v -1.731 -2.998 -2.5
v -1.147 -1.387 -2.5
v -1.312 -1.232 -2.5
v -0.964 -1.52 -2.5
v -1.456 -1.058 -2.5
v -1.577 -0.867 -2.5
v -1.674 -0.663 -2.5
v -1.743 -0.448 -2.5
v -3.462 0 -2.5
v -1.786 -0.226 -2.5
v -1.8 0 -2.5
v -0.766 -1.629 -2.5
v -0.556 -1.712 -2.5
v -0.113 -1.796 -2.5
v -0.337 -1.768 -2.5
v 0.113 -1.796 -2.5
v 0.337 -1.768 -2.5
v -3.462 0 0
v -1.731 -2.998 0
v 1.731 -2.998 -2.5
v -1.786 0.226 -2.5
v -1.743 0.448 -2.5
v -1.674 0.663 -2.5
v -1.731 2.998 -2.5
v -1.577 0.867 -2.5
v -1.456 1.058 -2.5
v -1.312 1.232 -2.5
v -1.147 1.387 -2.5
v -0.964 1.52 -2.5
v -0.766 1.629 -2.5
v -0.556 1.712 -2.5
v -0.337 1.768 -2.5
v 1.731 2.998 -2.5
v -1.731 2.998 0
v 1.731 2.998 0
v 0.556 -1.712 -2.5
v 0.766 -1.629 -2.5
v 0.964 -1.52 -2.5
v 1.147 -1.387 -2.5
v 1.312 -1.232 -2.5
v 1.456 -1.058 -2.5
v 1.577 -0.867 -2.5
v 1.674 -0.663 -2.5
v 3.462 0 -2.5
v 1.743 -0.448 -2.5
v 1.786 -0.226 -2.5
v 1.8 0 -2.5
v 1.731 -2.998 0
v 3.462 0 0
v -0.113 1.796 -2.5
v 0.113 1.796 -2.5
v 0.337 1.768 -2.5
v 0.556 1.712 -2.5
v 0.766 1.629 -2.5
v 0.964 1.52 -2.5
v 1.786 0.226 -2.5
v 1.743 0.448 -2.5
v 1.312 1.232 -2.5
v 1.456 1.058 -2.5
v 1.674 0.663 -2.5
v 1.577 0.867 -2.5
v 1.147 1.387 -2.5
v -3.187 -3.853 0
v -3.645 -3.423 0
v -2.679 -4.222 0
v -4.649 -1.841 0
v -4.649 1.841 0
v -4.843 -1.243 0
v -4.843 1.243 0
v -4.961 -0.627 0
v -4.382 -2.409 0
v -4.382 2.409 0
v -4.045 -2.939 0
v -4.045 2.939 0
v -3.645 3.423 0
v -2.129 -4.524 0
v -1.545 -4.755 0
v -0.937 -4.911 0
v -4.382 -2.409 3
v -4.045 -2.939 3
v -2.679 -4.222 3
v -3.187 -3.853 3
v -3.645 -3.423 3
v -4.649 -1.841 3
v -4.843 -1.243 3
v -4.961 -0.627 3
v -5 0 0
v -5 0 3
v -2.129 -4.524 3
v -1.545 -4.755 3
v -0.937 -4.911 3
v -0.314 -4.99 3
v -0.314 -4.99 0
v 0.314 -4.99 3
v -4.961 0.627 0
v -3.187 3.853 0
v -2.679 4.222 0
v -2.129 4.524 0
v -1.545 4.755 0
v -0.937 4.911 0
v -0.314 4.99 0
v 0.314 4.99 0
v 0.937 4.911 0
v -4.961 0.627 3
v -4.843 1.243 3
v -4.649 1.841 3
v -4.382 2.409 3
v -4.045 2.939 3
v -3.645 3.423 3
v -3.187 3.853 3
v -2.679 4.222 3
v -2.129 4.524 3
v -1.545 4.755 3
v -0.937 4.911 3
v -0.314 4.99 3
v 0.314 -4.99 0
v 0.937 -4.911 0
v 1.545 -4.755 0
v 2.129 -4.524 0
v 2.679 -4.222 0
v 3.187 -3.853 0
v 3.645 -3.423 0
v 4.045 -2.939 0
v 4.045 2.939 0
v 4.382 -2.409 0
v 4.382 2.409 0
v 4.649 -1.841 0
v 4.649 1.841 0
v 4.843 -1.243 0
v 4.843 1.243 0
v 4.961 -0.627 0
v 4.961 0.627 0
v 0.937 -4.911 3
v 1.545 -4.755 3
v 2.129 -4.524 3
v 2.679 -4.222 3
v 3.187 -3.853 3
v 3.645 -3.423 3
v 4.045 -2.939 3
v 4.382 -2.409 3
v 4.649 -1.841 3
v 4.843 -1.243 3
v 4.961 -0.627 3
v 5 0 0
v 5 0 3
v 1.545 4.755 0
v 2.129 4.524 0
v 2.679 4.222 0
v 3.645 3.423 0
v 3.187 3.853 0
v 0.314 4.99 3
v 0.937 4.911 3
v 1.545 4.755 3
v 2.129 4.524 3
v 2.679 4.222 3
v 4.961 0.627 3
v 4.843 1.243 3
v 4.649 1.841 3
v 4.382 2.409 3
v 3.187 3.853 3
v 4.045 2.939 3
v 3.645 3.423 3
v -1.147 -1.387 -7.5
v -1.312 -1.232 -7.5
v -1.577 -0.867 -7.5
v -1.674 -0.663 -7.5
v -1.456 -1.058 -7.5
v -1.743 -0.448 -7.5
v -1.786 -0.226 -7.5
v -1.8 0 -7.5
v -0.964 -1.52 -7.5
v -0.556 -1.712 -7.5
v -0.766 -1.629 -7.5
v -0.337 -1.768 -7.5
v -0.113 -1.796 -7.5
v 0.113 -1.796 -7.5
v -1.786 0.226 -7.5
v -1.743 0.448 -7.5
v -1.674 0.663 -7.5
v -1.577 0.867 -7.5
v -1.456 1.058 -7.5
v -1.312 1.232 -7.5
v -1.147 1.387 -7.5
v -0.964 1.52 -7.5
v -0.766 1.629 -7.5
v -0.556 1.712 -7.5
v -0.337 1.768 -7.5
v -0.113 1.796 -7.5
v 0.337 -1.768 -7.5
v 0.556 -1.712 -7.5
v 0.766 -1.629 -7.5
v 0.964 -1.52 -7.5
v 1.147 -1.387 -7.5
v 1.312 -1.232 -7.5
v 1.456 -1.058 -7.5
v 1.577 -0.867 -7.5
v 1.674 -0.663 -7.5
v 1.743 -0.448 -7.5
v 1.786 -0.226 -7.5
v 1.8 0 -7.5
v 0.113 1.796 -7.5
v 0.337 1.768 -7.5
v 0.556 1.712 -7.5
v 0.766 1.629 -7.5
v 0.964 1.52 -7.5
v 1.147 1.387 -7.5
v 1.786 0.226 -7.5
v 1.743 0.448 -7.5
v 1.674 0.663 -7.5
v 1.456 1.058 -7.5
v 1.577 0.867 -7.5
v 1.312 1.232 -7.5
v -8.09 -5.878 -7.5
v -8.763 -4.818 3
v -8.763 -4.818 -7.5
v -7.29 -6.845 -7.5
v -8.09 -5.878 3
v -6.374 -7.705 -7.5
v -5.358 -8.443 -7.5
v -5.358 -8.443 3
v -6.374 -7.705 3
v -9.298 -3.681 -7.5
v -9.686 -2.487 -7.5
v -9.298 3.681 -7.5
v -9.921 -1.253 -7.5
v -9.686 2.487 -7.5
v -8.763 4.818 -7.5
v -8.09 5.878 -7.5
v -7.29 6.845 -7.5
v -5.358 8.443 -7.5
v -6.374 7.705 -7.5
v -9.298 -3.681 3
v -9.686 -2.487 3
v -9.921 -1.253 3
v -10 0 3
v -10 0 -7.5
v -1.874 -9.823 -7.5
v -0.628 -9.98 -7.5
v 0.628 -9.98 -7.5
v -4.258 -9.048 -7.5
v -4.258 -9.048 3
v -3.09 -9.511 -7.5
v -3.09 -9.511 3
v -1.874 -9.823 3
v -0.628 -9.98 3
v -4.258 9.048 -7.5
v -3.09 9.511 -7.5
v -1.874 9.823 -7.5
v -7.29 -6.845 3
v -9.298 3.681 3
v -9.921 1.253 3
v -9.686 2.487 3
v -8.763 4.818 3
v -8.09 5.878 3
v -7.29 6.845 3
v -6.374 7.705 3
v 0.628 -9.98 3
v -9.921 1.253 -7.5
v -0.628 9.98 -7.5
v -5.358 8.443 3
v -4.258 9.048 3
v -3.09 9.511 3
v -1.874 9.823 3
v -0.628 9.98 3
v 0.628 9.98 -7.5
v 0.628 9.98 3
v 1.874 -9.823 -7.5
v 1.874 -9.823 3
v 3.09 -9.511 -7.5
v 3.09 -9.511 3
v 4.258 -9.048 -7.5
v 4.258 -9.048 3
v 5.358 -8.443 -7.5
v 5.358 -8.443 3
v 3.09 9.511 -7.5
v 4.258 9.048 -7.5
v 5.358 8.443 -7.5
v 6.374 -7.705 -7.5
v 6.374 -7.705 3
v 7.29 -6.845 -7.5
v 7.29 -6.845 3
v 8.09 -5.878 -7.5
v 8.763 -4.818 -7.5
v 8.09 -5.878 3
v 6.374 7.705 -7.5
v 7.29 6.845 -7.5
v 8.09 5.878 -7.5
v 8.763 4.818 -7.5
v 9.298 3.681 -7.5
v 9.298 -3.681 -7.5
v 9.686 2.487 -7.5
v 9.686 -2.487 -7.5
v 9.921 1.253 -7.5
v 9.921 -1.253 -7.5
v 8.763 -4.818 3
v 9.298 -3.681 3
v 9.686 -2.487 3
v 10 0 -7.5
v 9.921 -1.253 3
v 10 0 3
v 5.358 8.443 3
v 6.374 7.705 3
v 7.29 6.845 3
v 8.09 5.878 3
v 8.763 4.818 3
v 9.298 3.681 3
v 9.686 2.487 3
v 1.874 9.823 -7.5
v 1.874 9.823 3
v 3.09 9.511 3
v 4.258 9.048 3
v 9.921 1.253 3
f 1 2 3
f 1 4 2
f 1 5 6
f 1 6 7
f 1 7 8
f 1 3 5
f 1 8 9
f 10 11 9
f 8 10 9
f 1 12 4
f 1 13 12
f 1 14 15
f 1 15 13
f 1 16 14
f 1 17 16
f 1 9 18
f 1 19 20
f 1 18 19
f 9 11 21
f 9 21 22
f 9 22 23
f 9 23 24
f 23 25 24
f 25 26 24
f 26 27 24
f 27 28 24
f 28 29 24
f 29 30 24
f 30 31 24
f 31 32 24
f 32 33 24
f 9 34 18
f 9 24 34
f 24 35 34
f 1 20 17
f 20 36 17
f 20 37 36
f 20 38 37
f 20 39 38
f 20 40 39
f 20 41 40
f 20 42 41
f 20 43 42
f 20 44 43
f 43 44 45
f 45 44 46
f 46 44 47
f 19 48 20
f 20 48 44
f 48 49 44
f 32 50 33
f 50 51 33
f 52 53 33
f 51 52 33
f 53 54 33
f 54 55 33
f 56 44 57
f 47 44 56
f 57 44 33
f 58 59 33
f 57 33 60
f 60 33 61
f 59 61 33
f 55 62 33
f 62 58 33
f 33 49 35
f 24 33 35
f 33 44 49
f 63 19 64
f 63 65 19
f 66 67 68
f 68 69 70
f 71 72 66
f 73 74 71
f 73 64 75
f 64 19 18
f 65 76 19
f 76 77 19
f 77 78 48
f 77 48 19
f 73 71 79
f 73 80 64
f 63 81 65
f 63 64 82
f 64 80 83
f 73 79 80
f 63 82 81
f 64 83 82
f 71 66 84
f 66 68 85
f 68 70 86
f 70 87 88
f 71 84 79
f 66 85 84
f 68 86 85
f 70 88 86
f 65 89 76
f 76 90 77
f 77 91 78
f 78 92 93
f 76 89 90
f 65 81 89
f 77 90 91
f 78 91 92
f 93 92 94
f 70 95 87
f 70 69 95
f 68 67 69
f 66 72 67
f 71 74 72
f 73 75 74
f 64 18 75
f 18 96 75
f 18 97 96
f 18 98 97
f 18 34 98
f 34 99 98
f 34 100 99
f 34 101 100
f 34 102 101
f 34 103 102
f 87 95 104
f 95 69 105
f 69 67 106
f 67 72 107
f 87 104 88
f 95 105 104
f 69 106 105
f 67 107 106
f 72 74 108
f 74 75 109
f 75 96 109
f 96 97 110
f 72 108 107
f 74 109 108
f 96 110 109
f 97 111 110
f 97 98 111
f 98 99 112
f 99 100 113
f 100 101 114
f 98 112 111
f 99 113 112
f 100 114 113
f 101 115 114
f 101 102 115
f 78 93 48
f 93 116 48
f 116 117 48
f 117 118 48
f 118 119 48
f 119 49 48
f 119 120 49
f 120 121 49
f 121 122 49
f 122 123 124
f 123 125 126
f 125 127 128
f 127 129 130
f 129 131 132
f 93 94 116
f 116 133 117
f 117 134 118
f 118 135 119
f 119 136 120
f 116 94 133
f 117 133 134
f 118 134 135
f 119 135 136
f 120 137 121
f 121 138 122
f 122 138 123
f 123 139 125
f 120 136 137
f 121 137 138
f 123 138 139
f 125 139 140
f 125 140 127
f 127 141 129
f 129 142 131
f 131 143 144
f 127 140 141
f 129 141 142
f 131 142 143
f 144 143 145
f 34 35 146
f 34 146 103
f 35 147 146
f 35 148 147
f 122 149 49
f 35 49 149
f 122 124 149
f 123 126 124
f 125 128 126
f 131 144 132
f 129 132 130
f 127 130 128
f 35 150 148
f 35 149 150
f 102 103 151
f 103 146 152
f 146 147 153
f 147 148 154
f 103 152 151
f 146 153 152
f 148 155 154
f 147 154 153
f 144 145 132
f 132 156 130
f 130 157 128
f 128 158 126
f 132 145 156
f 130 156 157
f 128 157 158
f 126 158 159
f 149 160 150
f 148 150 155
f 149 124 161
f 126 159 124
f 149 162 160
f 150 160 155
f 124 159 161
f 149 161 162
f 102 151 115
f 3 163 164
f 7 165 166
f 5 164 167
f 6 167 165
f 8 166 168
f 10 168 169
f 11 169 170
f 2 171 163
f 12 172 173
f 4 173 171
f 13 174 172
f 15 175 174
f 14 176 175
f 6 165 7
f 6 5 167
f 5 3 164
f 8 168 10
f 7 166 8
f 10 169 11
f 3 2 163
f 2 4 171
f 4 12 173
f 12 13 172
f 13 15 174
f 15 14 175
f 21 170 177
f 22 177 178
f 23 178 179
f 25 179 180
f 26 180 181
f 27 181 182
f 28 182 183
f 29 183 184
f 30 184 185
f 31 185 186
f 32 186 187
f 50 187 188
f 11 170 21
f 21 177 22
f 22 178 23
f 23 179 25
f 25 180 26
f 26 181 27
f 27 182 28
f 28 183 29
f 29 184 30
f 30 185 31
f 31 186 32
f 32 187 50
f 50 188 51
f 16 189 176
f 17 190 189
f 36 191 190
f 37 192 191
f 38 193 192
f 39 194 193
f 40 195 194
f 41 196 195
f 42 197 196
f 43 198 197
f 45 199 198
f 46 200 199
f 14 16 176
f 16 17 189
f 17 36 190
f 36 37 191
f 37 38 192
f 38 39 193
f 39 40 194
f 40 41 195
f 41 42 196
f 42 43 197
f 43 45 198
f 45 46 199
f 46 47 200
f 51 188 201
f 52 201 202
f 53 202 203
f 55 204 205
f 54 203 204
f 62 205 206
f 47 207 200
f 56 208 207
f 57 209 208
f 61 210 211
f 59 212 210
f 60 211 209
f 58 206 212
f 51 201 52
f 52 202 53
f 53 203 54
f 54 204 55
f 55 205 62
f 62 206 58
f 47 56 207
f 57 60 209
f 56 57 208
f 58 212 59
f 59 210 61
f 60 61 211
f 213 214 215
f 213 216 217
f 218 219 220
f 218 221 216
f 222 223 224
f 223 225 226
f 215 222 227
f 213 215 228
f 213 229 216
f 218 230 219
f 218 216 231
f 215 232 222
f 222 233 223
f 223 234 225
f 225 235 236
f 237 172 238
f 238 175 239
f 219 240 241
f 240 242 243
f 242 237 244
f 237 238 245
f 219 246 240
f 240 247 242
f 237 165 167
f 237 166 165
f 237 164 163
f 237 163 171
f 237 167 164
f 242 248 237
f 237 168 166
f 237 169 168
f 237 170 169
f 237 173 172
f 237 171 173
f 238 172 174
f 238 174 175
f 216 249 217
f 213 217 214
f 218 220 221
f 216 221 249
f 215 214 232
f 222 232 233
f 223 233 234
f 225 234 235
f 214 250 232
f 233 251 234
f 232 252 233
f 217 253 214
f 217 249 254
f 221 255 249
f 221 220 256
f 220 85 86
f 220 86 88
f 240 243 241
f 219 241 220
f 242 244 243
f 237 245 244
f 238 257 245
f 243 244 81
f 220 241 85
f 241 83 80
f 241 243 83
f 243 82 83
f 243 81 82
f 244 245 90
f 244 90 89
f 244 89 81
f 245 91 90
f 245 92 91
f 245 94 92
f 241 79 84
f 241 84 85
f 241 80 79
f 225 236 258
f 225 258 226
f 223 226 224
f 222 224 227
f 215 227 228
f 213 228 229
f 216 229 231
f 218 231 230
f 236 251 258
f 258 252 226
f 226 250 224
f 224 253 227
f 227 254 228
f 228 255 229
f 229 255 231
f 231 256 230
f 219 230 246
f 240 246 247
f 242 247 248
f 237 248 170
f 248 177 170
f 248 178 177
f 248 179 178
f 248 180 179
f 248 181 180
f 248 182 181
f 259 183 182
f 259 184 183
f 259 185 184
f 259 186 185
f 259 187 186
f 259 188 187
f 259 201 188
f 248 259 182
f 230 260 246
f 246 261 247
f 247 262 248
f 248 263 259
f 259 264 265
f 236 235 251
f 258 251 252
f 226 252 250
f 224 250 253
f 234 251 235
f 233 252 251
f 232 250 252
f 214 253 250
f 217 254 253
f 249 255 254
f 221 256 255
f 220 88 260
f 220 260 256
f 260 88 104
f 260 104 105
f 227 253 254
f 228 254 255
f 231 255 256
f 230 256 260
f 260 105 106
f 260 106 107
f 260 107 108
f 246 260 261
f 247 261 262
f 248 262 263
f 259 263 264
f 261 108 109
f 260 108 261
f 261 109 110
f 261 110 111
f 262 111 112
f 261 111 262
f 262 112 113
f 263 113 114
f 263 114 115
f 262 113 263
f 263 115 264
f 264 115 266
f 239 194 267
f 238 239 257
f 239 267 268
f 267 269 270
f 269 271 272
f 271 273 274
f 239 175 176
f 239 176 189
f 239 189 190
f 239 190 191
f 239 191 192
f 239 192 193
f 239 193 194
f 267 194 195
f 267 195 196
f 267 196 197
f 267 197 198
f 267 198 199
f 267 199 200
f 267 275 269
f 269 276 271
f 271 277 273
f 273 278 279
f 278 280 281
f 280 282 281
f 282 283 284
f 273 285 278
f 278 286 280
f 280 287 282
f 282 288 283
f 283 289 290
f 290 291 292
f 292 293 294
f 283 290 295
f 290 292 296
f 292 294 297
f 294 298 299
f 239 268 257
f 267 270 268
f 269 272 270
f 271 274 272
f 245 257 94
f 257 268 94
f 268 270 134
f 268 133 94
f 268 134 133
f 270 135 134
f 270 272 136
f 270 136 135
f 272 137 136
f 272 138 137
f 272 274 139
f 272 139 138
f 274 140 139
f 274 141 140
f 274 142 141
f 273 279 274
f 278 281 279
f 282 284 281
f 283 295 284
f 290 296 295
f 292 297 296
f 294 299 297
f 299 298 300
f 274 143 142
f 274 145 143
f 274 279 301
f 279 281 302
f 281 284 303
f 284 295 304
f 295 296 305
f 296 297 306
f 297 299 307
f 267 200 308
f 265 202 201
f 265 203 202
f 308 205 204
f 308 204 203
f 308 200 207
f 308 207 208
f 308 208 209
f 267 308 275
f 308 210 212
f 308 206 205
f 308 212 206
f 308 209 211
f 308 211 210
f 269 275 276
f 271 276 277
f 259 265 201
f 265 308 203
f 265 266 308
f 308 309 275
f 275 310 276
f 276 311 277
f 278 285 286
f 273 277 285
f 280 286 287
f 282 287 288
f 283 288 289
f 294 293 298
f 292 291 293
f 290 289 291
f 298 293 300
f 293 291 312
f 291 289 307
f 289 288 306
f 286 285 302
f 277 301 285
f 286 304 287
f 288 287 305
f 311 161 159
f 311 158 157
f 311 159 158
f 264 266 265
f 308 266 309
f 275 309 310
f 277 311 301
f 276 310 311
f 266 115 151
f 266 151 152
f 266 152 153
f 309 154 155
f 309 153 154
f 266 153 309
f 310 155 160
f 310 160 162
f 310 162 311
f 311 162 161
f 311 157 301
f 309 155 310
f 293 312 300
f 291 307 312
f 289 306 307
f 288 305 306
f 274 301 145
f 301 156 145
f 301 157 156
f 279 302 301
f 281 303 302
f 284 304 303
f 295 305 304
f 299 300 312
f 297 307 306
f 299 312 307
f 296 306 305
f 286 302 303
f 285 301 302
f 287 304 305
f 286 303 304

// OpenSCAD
$fn = 50;

difference() {
	union() {
		translate(v = [0, 0, -7.5]) {
			cylinder(h = 10.5, r = 10.0);
		}
	}
	union() {
		translate(v = [0, 0, 0]) {
			rotate(a = [0, 0, 0]) {
				difference() {
					union() {
						translate(v = [0, 0, -2.5]) {
							linear_extrude(height = 2.5) {
								polygon(points = [[3.4619999999999997, 0.0], [1.7310000000000003, 2.9981799479017264], [-1.7309999999999992, 2.9981799479017264], [-3.4619999999999997, 4.2397272186481365e-16], [-1.7310000000000014, -2.998179947901726], [1.7309999999999977, -2.9981799479017277]]);
							}
						}
					}
					union();
				}
			}
		}
		#cylinder(h = 3, r = 5.0);
		#translate(v = [0, 0, -100.0]) {
			cylinder(h = 200, r = 1.8);
		}
	}
}
